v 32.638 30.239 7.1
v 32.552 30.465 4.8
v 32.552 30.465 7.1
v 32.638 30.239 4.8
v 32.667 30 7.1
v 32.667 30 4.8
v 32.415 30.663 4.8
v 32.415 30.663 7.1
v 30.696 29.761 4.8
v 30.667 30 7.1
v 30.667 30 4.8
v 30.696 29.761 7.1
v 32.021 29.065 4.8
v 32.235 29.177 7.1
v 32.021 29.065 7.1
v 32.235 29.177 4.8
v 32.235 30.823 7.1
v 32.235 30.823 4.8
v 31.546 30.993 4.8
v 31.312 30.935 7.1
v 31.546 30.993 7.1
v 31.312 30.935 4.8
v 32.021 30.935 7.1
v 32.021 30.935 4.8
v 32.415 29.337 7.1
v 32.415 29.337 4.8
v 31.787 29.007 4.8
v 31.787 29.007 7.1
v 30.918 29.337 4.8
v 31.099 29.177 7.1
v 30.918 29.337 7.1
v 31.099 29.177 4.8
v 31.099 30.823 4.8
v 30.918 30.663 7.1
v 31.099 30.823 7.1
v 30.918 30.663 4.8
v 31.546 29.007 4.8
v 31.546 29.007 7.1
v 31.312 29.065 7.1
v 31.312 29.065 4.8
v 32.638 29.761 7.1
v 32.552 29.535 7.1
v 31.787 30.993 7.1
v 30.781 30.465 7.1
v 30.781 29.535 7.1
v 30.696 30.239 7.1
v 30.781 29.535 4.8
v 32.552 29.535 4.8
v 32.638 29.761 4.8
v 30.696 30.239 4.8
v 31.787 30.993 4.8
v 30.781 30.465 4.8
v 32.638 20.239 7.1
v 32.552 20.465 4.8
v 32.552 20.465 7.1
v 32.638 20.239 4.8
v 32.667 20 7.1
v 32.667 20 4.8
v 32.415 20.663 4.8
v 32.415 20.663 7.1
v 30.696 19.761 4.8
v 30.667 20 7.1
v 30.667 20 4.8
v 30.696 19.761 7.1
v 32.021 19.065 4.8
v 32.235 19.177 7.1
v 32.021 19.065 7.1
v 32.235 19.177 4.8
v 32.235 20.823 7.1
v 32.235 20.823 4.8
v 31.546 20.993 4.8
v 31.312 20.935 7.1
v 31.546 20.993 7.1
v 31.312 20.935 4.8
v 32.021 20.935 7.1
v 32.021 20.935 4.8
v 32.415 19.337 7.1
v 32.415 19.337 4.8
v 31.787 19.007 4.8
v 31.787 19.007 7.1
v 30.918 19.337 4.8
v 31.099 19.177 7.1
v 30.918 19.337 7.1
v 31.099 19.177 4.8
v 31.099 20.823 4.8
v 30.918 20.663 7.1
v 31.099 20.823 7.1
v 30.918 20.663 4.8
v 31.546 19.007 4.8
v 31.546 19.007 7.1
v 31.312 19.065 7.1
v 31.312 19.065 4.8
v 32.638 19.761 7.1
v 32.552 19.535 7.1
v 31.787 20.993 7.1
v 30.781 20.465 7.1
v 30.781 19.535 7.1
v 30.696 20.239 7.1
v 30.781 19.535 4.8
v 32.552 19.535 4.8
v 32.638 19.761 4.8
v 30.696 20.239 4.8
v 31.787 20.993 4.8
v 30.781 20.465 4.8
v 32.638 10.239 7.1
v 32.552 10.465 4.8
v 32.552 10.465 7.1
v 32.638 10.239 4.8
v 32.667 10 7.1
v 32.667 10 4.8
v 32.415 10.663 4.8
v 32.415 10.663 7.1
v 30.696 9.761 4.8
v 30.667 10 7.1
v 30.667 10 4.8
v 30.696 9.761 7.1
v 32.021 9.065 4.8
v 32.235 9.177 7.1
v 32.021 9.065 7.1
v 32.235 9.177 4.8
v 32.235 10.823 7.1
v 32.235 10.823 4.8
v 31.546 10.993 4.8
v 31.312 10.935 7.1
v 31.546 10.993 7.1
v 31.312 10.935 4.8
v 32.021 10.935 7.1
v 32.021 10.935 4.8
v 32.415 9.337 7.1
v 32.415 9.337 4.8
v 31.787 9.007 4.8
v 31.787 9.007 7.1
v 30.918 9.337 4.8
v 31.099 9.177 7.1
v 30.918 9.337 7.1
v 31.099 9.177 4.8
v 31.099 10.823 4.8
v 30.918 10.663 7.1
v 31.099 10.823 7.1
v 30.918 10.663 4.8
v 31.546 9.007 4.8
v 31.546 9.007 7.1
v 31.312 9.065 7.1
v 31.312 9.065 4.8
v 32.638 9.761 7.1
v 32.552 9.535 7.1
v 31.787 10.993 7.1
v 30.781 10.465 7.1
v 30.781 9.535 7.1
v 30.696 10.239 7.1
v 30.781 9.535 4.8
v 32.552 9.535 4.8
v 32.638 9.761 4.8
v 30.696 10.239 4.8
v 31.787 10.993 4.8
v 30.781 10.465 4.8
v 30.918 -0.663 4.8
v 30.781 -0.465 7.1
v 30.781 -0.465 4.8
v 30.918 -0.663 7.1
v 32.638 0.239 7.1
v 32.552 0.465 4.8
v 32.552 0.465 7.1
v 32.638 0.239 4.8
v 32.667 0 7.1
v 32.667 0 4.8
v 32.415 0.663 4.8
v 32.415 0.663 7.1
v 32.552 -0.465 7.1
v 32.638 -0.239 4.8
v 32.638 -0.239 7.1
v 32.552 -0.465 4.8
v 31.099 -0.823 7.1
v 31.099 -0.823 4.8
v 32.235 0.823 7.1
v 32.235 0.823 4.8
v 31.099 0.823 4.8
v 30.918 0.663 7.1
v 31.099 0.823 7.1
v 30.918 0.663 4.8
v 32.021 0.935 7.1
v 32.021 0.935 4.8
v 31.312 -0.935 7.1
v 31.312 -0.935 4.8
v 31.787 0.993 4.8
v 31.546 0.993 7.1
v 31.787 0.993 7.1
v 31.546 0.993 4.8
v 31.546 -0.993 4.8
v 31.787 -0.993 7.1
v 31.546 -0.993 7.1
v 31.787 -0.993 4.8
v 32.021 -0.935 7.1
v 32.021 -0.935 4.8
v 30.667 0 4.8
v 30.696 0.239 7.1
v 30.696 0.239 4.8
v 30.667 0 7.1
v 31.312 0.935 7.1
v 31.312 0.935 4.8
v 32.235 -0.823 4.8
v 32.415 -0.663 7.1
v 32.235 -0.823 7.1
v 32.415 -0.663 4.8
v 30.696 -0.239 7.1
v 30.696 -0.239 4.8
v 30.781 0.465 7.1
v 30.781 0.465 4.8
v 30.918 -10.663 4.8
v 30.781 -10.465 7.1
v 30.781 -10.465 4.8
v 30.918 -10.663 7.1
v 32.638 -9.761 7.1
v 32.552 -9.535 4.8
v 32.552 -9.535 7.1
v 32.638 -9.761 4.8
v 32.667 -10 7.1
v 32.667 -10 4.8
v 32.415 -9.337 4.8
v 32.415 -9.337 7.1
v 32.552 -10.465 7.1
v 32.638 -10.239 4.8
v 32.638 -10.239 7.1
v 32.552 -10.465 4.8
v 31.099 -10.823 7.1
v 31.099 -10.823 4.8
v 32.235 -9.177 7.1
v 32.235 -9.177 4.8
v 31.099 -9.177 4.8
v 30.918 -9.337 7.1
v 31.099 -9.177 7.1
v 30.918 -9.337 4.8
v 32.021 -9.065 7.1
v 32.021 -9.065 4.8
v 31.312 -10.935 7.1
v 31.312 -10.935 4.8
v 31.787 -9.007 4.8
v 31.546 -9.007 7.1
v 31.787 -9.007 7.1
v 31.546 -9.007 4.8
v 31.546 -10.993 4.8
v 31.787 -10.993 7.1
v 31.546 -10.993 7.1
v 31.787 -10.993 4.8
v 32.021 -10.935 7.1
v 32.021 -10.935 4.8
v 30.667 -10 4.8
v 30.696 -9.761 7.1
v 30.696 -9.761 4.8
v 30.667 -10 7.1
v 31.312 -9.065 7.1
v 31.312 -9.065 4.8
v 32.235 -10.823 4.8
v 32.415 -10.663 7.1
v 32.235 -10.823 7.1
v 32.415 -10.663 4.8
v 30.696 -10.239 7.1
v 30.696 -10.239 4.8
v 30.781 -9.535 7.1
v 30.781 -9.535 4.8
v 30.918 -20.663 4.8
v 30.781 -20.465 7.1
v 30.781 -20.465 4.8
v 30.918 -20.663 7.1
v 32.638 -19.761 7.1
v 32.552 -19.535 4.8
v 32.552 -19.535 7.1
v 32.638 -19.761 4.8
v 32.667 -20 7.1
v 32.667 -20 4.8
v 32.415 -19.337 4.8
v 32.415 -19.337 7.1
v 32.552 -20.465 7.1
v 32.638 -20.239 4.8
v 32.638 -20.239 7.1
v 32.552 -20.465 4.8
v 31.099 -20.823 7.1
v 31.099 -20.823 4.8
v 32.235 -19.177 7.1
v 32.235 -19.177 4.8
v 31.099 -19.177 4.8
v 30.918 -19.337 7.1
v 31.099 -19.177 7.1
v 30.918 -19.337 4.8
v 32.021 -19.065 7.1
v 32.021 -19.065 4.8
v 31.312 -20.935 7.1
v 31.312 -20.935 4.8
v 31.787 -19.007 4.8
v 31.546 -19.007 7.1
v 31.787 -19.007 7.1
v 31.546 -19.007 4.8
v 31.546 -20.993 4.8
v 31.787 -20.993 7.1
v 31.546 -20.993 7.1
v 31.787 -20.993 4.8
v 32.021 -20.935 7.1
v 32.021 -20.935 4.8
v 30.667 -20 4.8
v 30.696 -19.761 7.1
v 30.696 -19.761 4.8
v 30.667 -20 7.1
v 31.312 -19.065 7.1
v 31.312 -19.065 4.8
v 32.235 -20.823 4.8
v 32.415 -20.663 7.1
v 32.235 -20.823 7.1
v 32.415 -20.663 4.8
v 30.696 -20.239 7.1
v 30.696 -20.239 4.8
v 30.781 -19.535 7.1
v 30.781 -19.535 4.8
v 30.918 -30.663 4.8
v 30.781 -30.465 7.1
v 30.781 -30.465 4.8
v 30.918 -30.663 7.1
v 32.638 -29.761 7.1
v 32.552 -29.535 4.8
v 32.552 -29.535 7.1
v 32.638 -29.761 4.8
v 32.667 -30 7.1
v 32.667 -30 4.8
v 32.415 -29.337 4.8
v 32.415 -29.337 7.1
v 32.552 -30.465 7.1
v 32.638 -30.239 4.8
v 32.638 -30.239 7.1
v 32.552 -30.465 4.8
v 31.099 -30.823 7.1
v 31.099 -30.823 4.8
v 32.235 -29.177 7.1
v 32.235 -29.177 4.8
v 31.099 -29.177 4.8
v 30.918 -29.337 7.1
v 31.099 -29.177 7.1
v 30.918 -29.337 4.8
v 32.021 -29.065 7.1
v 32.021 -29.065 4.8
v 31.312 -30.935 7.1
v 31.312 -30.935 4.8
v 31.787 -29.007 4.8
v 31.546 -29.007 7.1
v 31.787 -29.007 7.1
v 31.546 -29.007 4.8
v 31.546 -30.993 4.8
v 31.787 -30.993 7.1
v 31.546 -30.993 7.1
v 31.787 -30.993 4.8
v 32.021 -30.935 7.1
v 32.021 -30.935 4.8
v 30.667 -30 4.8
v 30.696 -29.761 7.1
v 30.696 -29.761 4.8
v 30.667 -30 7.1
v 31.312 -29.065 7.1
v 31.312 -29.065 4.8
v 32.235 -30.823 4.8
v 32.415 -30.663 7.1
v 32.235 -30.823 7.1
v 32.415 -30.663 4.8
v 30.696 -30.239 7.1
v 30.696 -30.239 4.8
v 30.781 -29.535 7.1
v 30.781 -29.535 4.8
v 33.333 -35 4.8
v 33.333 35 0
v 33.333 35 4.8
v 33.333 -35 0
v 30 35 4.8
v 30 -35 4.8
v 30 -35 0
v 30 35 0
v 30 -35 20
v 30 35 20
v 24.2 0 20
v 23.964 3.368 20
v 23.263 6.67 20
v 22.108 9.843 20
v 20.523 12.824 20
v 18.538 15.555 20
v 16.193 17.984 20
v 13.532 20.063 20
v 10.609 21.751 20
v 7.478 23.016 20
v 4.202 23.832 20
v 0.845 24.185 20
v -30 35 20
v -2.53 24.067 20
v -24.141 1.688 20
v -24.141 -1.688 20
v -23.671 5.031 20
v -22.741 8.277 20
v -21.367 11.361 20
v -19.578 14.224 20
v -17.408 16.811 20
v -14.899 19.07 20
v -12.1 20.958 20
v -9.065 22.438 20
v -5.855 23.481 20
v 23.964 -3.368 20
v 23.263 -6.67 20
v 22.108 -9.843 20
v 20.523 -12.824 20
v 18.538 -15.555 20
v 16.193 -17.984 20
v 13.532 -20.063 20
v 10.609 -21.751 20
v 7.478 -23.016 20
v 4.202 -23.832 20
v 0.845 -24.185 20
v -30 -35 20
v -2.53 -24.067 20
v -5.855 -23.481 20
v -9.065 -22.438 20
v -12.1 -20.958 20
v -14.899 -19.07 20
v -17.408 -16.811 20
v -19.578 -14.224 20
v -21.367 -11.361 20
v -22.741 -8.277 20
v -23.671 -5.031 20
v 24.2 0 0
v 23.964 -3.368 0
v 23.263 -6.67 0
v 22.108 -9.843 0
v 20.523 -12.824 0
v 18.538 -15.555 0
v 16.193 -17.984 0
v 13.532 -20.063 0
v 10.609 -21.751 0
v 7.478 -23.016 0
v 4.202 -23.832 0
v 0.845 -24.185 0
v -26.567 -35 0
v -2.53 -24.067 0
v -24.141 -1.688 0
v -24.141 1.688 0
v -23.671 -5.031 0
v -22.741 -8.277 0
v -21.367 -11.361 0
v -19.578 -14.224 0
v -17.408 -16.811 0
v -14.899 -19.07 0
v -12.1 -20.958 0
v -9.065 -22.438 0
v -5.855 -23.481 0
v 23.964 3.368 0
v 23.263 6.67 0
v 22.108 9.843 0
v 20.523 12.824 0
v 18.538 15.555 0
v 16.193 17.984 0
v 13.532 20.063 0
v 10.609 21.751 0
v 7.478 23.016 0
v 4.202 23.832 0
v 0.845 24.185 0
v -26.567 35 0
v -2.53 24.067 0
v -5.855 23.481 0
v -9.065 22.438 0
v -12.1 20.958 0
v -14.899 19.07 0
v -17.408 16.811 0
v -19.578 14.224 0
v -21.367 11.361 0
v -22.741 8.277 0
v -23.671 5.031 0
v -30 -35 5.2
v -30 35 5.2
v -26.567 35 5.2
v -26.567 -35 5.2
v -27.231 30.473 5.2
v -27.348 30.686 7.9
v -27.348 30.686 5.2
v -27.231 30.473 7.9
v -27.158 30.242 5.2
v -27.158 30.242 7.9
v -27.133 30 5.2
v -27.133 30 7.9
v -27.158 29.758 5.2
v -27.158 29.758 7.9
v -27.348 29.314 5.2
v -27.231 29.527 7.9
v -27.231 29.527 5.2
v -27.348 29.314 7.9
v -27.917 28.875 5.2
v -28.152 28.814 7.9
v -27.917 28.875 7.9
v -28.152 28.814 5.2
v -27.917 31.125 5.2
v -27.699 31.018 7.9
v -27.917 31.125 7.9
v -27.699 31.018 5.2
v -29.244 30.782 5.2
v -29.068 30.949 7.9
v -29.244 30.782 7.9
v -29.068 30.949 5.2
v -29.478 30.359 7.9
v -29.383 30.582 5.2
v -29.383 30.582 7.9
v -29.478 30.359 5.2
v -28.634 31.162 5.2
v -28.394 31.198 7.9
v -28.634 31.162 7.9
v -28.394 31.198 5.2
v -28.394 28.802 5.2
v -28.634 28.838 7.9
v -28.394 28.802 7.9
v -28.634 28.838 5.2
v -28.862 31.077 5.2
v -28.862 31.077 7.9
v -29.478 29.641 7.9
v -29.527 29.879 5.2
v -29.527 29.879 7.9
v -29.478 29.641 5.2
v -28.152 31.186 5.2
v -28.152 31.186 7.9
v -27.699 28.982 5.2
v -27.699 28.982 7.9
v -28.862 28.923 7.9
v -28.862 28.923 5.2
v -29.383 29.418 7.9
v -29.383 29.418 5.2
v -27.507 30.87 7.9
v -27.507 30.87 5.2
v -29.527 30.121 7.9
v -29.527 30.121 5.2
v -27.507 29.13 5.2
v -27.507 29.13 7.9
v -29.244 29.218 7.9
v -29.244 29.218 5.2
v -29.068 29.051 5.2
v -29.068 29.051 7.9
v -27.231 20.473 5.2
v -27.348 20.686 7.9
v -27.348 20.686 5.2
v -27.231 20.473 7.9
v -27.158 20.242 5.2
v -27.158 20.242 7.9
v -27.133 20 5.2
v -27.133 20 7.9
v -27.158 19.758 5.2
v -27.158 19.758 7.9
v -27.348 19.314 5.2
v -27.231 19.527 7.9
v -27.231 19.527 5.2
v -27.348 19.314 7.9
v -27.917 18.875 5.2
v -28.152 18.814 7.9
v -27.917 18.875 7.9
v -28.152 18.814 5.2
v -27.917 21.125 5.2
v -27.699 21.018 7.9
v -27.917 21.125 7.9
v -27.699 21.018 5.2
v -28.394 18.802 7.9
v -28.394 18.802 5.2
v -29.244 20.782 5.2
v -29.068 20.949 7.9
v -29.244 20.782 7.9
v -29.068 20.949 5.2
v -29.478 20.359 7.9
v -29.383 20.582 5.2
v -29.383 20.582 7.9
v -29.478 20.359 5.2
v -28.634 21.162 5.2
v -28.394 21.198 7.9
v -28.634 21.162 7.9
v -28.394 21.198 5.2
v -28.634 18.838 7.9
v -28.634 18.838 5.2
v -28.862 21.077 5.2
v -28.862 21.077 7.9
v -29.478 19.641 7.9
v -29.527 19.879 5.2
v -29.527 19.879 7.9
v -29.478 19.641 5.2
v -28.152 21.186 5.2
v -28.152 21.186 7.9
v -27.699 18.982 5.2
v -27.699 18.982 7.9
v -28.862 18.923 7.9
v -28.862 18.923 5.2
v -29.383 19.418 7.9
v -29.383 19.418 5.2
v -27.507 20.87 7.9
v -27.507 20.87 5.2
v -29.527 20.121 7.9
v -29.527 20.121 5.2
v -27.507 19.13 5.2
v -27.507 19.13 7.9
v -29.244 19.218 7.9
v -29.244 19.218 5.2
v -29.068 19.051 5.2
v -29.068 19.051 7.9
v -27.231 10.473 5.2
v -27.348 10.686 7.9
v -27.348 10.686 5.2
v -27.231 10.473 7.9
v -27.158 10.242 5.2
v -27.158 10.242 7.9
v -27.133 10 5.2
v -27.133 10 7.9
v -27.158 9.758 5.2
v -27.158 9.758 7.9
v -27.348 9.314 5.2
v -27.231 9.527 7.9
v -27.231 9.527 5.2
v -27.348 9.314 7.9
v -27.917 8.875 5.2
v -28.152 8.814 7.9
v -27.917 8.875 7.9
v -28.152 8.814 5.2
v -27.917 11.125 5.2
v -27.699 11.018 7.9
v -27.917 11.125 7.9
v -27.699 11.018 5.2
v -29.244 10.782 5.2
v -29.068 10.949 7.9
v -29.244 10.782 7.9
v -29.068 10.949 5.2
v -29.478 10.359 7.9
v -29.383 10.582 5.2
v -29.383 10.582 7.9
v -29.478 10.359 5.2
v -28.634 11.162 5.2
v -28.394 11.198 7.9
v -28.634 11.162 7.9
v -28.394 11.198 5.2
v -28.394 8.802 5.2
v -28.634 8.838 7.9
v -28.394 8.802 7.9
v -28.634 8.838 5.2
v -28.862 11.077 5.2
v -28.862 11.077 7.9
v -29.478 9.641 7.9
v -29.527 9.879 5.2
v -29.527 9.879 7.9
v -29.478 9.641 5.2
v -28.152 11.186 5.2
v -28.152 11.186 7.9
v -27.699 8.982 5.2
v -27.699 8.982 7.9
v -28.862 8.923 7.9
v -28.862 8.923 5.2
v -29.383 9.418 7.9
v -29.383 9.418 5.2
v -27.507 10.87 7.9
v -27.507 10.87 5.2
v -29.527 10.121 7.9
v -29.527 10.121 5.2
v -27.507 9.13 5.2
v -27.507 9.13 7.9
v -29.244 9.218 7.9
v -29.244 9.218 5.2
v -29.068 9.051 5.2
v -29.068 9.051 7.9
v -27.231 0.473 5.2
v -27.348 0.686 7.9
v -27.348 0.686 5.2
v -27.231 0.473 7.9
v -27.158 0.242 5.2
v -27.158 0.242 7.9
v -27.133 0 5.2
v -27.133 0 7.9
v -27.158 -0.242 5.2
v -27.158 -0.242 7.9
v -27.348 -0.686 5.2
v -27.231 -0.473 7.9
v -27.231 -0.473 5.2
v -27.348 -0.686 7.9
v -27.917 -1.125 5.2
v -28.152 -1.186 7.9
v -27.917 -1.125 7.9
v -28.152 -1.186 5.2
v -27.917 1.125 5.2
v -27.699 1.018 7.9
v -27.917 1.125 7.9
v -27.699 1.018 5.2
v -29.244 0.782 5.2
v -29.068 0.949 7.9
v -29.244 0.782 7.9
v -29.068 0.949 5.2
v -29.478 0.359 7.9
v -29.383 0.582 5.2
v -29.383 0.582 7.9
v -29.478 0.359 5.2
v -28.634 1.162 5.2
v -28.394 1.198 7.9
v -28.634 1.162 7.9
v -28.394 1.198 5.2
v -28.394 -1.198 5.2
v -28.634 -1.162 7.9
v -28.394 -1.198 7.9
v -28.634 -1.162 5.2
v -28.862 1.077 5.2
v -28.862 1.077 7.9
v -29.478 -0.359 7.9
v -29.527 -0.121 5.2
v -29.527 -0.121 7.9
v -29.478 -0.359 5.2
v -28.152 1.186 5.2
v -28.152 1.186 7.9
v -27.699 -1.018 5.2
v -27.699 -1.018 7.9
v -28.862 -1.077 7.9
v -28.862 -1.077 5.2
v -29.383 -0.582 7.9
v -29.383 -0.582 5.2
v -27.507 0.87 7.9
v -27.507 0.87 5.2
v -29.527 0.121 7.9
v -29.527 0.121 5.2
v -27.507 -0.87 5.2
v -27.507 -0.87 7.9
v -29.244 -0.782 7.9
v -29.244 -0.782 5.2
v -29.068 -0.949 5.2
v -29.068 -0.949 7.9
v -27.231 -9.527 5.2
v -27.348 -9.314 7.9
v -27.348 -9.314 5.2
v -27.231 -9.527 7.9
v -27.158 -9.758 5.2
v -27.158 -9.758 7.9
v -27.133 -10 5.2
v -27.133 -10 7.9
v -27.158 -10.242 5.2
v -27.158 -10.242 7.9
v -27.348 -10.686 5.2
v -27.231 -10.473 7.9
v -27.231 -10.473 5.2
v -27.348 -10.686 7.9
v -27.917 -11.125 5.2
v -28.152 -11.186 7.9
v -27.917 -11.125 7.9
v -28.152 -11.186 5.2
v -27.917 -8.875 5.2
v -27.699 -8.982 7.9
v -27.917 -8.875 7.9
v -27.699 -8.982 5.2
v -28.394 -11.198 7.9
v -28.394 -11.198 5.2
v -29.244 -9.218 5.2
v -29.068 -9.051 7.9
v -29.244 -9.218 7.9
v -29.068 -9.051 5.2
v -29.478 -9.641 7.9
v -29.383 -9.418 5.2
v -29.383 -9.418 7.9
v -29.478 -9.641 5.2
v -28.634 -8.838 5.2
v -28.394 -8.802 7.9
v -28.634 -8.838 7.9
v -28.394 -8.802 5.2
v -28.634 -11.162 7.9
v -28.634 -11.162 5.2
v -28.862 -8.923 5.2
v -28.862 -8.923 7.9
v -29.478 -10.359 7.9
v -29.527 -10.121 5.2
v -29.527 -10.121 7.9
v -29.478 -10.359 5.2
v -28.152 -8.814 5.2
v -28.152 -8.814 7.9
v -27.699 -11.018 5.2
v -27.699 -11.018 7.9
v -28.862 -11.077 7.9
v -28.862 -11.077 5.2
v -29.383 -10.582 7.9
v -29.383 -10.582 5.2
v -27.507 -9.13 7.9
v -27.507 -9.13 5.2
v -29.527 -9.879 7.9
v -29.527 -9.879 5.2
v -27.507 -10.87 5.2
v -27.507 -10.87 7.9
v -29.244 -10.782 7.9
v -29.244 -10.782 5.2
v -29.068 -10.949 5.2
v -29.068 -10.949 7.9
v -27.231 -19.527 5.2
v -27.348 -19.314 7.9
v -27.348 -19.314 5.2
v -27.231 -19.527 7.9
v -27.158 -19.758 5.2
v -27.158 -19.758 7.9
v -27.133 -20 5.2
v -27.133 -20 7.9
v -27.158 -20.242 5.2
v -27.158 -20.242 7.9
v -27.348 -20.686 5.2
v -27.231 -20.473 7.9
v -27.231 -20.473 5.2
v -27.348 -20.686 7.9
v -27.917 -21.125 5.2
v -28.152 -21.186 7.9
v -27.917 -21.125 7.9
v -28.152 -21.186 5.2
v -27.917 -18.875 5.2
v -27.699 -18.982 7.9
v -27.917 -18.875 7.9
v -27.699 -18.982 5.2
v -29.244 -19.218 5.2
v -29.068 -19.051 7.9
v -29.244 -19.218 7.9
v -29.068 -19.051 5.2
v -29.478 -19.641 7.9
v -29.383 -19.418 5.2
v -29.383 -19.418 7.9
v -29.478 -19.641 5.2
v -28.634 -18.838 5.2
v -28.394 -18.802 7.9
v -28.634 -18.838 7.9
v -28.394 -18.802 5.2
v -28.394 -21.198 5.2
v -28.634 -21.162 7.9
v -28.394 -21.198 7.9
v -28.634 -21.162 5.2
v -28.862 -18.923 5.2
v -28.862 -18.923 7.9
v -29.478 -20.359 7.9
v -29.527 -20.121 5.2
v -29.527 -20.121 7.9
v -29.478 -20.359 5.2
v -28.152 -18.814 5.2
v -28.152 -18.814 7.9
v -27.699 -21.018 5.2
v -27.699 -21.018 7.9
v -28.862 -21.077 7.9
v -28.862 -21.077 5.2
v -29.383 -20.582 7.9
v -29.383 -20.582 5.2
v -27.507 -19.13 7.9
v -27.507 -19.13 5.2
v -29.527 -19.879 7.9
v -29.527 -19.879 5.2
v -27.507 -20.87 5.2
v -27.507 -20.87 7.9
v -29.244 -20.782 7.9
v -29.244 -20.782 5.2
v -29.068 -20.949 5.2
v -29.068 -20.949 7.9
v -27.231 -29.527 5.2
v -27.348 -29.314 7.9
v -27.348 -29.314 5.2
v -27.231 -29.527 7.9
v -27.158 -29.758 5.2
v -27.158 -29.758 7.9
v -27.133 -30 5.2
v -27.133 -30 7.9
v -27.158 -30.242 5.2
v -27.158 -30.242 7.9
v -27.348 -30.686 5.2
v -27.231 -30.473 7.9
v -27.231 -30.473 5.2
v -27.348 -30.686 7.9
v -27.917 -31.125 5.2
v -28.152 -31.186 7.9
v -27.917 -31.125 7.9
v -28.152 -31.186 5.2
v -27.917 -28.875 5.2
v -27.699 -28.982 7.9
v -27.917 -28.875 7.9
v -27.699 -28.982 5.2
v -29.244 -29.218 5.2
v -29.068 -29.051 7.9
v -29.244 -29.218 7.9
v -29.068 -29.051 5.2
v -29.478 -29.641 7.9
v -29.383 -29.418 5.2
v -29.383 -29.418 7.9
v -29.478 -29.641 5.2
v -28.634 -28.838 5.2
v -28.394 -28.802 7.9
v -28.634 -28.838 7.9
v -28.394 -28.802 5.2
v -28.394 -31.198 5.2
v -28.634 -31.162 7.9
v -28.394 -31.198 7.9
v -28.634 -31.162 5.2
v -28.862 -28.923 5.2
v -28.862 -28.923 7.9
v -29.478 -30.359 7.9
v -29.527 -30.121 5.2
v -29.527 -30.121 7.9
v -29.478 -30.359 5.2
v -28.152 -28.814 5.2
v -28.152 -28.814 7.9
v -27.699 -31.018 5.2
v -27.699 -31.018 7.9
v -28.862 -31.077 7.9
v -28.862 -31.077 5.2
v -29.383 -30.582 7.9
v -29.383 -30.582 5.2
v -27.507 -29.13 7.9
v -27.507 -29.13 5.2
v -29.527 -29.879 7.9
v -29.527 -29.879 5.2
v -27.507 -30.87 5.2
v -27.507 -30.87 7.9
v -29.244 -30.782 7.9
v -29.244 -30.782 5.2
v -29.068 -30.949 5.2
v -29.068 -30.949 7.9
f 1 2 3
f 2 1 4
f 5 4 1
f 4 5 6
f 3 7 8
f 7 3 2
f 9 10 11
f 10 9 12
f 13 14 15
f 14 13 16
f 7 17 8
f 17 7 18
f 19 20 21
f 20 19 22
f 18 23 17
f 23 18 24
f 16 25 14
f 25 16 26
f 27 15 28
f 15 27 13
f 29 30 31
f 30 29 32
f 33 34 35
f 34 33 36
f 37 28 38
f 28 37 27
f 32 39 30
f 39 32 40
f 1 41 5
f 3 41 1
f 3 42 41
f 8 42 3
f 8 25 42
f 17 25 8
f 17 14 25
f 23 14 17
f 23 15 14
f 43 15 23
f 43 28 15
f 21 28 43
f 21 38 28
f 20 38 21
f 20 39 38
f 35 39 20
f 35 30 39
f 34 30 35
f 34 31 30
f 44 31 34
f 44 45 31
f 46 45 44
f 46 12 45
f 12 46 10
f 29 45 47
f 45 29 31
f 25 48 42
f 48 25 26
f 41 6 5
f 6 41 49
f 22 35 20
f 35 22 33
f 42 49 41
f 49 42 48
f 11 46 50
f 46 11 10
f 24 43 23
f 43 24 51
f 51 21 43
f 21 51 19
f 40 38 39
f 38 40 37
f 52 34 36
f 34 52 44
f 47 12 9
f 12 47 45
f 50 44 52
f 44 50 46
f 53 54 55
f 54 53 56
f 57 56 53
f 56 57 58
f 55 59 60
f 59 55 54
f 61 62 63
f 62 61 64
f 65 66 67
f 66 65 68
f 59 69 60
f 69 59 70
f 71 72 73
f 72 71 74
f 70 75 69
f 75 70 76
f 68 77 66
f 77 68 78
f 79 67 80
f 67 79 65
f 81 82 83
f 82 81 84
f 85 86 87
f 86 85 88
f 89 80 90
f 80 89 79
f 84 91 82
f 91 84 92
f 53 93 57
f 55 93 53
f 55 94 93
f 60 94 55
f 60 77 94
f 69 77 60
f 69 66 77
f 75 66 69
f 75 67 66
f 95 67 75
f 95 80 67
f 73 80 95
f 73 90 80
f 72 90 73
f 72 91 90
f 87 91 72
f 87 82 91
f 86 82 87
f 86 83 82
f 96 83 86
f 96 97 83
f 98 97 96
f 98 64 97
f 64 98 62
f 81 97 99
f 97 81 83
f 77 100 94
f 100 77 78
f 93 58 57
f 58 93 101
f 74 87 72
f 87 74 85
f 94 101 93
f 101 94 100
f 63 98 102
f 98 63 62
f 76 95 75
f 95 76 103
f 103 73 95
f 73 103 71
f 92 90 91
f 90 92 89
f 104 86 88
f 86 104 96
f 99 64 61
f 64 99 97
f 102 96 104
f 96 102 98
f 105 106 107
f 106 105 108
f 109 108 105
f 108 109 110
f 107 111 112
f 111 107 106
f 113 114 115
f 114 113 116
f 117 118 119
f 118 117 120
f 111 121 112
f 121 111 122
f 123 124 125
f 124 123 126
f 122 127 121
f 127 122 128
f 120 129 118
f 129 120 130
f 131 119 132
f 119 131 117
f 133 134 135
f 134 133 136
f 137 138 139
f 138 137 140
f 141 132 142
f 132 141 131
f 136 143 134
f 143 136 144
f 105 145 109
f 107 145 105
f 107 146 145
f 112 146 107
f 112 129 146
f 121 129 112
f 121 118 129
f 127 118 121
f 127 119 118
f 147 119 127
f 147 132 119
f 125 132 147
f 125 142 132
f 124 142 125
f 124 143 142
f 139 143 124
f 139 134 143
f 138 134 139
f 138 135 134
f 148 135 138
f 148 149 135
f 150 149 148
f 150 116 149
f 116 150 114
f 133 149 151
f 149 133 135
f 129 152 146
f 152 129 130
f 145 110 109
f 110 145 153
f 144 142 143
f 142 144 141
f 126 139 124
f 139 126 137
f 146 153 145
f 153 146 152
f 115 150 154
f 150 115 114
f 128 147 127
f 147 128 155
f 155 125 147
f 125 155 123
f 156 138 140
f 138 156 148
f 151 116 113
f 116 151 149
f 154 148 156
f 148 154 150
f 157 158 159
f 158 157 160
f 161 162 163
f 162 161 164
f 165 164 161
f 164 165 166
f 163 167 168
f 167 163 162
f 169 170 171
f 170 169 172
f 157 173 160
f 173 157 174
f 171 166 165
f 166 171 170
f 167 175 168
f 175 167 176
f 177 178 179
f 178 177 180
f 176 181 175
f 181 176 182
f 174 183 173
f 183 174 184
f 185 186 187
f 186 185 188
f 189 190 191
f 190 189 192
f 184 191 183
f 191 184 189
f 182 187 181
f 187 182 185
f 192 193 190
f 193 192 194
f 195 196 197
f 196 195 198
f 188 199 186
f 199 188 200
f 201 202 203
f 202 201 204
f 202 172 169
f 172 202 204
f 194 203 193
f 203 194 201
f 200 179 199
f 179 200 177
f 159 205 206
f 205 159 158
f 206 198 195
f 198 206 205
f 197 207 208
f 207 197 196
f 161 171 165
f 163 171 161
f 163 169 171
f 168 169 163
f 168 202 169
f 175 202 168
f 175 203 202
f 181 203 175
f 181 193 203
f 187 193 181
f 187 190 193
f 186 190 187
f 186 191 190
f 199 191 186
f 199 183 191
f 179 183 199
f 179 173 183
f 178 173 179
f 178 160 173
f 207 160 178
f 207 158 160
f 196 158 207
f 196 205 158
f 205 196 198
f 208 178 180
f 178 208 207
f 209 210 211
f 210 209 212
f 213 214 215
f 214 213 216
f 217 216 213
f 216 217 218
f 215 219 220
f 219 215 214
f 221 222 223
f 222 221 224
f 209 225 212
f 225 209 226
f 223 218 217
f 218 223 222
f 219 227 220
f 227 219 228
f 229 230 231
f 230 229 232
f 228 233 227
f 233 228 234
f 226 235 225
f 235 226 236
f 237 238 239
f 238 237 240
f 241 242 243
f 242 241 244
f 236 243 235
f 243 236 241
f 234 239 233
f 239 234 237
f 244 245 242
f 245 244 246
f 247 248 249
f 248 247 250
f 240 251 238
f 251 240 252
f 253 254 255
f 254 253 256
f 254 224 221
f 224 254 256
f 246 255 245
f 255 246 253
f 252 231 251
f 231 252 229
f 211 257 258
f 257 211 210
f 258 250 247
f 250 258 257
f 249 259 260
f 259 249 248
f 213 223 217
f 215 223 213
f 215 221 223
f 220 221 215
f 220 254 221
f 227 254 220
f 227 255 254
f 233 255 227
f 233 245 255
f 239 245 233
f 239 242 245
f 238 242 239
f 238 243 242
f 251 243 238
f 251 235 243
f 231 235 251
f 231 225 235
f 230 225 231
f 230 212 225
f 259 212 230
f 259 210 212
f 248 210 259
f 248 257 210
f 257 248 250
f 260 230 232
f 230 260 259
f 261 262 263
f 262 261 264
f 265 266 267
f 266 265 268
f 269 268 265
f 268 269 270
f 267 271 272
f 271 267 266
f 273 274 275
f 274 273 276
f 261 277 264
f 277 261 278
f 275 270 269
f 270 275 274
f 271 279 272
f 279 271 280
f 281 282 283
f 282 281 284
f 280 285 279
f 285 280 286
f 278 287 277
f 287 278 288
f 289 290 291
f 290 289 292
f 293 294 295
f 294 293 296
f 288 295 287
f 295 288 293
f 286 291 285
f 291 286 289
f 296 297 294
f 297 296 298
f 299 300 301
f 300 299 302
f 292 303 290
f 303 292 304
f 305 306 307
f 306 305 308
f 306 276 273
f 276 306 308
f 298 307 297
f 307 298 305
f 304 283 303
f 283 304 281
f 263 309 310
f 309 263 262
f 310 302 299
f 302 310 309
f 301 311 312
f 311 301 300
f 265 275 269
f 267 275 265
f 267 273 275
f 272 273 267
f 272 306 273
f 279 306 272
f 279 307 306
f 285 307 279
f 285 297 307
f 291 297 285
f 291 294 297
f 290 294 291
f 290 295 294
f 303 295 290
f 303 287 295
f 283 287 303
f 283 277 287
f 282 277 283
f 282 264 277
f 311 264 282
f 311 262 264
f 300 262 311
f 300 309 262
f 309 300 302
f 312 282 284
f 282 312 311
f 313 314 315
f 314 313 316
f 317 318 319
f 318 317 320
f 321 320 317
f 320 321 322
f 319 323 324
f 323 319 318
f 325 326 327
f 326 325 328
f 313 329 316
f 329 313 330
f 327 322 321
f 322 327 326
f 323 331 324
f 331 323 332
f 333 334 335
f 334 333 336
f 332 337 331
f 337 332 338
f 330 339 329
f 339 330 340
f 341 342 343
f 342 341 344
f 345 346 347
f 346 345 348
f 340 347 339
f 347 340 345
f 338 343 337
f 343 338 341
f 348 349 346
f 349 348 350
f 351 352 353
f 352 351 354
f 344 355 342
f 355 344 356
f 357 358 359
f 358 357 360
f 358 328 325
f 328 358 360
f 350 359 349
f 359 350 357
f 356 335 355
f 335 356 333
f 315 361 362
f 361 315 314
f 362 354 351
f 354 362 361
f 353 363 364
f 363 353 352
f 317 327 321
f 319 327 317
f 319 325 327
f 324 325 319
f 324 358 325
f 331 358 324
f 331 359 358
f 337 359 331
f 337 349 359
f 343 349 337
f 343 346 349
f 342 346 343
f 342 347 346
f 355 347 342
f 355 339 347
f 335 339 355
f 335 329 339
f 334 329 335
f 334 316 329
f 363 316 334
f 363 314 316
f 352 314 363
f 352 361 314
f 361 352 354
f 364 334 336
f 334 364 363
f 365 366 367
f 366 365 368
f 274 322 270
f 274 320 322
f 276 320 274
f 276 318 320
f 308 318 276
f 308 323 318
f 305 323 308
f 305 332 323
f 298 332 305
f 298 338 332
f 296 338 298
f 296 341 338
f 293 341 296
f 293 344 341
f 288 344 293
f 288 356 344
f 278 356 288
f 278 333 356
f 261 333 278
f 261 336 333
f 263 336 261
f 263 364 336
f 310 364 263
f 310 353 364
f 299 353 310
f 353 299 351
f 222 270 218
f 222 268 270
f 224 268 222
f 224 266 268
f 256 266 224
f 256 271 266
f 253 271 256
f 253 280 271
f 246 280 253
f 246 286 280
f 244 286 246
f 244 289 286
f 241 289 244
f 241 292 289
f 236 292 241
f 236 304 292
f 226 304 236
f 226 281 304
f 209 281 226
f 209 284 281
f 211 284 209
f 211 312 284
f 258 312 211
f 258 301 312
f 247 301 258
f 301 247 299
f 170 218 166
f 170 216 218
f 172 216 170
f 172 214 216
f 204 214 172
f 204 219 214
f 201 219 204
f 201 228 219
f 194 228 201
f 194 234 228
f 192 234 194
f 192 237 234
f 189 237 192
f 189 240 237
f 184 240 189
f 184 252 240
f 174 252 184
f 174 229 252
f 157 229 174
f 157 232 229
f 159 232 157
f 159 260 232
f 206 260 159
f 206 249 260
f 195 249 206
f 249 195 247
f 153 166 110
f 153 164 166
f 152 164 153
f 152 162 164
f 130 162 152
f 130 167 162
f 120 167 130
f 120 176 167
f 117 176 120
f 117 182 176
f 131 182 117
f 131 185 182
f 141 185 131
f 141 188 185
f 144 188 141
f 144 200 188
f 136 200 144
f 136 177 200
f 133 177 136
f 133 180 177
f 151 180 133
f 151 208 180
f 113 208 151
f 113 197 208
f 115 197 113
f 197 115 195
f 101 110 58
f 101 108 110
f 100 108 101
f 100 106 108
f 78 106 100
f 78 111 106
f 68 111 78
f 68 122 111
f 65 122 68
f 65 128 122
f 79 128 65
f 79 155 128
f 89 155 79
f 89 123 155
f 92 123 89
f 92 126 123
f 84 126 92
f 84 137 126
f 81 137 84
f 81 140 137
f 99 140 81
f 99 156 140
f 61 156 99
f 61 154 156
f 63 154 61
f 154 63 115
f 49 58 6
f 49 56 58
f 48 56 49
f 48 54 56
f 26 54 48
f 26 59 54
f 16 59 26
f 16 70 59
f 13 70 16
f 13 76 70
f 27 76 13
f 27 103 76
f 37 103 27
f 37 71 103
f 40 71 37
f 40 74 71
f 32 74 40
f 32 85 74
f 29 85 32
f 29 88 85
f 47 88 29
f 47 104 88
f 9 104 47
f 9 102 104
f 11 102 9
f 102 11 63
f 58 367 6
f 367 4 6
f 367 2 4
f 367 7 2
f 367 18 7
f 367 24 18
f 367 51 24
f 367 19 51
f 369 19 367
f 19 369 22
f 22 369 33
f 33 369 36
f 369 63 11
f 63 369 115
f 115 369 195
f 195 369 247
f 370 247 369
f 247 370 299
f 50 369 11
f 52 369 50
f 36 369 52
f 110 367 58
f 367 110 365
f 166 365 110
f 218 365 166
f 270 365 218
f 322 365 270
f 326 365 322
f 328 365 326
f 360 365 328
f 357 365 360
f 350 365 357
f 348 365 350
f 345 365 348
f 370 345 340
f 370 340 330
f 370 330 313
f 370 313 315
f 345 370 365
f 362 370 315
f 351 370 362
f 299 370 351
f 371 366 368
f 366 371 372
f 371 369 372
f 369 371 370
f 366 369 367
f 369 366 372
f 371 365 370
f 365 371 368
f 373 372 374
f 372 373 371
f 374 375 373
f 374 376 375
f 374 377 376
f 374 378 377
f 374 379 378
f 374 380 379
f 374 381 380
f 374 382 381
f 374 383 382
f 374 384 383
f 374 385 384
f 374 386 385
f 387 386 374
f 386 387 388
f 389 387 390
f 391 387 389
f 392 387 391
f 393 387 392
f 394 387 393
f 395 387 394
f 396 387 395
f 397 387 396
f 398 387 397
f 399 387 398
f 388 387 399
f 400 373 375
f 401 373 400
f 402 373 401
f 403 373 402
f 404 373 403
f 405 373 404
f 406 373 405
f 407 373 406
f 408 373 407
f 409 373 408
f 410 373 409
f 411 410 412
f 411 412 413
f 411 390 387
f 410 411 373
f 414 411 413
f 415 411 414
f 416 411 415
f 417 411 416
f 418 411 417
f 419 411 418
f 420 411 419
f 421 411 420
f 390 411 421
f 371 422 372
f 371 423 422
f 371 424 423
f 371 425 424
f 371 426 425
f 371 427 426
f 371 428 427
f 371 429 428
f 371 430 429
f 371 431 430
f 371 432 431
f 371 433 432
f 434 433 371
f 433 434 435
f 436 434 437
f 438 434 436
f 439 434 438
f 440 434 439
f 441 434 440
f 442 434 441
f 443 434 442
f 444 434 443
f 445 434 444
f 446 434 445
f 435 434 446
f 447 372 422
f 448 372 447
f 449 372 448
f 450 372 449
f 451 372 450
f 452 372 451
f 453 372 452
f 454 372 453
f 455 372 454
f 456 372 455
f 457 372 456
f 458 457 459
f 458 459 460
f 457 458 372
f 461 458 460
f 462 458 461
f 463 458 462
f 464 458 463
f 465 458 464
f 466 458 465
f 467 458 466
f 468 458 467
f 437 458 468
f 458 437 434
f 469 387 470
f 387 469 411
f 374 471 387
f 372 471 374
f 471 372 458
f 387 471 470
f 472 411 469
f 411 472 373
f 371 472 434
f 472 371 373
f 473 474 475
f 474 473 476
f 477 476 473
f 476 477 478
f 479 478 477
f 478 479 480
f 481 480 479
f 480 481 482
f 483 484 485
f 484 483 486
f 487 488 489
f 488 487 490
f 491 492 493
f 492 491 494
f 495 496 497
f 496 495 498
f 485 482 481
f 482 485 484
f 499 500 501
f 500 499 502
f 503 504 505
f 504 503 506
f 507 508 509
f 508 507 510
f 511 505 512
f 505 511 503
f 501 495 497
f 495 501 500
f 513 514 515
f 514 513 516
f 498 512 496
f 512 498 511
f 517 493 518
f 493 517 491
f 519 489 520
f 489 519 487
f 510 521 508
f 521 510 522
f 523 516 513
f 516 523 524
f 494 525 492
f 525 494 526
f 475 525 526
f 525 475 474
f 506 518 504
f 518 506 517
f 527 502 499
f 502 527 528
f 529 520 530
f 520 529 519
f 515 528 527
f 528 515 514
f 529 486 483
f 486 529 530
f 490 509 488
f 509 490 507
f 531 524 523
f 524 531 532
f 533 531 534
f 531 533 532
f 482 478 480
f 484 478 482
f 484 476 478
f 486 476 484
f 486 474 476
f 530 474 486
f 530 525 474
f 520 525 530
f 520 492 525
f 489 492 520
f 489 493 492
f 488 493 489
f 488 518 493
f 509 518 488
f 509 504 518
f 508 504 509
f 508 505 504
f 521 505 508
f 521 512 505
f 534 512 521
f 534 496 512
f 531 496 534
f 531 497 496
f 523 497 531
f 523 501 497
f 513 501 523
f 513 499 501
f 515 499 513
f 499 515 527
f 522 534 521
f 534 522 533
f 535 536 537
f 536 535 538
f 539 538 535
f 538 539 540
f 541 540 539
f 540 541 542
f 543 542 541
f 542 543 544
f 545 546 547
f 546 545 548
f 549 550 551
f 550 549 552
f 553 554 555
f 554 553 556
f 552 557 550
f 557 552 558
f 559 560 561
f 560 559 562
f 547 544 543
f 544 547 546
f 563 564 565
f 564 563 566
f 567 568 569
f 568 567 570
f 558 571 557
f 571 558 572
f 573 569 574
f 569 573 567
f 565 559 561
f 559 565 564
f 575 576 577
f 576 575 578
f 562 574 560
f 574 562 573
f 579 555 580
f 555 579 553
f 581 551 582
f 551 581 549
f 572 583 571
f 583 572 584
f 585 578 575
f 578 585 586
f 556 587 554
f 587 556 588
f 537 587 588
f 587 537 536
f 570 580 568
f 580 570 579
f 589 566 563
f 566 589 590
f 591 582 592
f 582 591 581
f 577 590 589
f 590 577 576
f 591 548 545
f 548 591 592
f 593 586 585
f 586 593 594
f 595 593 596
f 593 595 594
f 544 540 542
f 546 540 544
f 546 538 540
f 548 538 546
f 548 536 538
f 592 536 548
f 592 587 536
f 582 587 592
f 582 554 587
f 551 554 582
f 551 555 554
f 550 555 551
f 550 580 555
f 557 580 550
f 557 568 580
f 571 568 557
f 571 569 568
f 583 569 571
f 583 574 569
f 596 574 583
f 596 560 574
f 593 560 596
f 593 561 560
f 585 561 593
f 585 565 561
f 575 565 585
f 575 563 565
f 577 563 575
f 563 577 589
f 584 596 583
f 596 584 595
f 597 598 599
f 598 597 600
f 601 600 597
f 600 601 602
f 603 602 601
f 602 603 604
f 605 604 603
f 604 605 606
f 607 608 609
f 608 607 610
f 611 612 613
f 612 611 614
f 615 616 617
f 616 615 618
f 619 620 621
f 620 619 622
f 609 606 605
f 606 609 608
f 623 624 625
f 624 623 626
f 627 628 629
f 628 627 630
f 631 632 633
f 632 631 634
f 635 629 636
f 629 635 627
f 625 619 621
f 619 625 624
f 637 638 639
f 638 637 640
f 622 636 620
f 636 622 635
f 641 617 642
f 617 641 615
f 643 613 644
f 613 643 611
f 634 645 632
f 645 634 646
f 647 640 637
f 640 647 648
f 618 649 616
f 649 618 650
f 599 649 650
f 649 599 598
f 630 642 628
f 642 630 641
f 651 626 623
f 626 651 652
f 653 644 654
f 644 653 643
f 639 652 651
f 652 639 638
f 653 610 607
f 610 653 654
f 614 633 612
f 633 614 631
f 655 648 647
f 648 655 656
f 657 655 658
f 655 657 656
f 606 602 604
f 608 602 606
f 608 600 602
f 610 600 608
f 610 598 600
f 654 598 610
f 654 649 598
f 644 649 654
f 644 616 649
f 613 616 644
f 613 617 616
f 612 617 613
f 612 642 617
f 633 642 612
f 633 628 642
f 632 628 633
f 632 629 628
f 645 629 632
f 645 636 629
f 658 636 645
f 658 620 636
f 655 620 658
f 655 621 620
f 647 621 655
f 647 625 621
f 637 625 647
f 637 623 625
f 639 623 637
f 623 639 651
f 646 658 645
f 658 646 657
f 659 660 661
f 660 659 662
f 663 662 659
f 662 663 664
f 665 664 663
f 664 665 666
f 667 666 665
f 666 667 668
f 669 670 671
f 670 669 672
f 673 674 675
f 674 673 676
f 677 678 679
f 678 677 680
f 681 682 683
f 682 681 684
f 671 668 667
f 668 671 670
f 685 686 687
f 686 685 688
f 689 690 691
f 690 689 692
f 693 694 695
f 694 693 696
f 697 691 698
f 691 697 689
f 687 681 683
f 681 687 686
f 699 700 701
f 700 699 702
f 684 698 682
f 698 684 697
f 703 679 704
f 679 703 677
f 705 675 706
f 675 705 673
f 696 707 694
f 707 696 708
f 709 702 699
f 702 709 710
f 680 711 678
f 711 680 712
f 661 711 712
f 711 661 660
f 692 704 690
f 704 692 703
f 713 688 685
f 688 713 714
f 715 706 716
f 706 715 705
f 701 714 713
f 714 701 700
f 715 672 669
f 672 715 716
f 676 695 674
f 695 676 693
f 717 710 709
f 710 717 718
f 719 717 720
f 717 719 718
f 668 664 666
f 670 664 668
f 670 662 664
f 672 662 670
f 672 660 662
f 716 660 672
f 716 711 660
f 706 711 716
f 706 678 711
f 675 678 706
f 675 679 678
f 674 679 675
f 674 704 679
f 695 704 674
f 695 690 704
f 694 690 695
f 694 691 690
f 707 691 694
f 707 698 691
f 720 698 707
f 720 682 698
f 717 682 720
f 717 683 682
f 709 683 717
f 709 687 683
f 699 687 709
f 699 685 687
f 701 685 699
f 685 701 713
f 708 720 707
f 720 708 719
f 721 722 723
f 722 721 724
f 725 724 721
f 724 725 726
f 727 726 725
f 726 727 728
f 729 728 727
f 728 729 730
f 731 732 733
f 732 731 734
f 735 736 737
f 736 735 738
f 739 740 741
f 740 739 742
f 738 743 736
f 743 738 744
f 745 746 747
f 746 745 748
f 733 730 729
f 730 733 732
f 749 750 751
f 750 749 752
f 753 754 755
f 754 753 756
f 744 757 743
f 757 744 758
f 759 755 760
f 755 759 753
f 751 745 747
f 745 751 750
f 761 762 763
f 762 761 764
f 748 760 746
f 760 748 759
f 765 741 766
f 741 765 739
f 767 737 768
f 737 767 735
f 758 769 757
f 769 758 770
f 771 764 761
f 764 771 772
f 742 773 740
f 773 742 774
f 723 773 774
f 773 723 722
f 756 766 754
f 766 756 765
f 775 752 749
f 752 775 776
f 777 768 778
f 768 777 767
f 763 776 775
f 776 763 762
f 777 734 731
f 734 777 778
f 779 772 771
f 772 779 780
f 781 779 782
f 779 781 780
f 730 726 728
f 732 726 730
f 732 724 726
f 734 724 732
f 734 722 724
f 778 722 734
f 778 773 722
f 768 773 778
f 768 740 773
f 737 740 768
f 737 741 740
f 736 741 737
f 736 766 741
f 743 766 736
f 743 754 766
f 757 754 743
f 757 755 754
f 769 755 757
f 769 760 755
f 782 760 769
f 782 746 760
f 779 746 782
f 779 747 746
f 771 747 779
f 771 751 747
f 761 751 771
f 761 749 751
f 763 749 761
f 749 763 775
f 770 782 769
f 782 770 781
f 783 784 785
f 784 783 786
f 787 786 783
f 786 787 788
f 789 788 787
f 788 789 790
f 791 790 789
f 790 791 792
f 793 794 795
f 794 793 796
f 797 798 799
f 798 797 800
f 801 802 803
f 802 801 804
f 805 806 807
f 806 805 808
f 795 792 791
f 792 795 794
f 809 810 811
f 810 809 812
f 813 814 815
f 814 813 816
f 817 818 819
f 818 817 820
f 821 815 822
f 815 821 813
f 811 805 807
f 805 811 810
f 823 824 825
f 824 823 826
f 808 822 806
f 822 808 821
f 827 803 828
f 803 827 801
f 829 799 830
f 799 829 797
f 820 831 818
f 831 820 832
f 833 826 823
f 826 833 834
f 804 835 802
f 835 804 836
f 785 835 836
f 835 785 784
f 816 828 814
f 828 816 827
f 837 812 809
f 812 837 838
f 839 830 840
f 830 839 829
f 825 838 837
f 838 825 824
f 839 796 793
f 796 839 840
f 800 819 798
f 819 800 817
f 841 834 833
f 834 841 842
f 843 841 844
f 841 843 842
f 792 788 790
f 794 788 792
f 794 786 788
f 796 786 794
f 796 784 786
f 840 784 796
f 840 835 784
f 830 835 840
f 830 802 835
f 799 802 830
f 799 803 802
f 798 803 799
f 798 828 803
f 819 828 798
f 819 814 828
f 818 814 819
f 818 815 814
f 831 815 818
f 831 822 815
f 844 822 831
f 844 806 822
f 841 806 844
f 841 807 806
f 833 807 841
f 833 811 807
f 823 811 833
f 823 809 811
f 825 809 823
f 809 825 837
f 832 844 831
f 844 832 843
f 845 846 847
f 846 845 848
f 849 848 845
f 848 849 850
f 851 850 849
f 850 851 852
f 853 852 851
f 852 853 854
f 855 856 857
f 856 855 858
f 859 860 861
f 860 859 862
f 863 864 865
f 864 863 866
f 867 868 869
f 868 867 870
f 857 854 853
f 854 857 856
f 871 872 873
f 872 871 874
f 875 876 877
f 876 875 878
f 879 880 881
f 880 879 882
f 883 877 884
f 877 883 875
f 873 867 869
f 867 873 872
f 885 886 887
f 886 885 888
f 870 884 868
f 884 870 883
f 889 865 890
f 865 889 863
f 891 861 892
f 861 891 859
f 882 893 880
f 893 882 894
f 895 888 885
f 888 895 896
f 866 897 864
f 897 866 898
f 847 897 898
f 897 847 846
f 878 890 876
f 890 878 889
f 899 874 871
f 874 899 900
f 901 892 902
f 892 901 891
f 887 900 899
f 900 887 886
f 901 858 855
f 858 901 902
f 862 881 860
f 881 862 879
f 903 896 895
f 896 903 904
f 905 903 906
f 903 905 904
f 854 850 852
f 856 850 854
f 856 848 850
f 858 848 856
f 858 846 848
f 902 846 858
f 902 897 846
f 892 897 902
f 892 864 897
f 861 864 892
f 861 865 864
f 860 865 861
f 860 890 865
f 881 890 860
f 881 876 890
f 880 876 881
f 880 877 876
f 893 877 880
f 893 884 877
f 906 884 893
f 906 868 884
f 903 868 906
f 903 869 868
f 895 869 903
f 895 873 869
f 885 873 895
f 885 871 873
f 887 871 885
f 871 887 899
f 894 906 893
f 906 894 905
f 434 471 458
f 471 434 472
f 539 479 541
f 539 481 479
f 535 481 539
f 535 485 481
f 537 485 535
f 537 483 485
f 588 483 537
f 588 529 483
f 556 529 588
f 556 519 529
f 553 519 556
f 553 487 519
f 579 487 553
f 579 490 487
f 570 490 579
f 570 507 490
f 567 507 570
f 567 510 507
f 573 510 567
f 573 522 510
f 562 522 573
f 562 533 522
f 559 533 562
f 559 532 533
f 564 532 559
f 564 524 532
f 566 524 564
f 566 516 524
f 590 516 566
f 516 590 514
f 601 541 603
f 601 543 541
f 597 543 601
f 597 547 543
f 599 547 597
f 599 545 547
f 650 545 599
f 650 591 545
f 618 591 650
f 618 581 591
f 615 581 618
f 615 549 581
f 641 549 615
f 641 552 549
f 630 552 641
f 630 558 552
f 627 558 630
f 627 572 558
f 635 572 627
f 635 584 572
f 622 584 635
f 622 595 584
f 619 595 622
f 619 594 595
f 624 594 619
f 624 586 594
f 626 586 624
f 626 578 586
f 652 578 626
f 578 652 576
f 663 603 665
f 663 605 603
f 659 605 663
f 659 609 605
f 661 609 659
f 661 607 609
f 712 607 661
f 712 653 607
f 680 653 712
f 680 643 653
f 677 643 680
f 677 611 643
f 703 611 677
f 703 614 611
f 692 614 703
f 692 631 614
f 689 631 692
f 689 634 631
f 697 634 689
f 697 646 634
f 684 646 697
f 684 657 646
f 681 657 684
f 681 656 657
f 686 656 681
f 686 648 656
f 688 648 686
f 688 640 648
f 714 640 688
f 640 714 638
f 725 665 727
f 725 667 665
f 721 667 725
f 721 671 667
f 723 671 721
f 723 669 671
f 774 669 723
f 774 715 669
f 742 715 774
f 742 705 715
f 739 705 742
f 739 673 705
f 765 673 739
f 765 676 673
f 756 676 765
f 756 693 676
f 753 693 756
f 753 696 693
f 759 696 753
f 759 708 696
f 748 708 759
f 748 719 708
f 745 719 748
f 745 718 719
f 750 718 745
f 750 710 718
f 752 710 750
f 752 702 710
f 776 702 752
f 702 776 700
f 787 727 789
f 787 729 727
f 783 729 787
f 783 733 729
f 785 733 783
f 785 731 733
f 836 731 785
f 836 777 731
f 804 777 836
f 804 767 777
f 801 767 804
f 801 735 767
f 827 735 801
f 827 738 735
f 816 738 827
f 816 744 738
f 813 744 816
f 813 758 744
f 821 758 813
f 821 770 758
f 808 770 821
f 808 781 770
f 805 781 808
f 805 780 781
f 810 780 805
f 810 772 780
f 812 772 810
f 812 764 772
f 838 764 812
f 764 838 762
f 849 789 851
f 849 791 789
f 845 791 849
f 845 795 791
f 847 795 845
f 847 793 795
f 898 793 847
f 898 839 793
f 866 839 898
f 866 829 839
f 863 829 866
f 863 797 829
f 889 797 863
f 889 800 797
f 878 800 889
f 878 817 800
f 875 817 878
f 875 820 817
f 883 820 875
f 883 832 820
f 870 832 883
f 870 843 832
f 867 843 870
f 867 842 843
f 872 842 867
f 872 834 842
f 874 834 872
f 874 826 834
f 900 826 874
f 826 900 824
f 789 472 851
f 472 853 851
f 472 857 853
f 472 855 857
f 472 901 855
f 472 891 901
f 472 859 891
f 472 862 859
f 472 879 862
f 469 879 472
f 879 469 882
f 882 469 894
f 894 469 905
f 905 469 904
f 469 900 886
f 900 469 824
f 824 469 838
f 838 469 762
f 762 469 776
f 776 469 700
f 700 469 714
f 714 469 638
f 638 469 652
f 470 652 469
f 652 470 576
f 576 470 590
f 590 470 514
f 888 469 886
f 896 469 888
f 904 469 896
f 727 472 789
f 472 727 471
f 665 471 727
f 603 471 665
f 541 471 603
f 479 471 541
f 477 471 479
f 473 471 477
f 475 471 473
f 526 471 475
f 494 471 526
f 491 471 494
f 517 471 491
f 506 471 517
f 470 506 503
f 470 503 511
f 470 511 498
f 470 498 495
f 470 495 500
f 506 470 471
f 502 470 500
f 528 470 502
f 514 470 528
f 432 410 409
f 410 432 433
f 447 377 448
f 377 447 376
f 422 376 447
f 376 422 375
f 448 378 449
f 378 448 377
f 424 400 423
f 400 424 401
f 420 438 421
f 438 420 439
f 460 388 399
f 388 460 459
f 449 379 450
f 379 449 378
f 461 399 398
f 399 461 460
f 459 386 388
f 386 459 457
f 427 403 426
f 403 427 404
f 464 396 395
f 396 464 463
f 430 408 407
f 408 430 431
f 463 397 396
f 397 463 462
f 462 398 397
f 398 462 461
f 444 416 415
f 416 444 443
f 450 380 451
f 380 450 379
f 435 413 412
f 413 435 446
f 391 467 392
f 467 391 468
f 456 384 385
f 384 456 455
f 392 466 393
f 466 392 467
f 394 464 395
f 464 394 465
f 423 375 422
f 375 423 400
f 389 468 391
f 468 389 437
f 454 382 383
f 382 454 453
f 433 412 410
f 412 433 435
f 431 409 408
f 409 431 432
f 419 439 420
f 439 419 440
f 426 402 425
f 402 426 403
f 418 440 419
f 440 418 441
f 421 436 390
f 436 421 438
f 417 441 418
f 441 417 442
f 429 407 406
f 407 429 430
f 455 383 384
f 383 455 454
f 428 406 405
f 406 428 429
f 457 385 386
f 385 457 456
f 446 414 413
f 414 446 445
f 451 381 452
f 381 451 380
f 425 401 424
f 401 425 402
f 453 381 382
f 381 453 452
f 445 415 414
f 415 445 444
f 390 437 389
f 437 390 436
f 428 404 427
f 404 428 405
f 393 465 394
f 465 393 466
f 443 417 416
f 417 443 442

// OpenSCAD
// file: ../base.scad
// The x-axis has the connection to the other units
// There is one connection peg per x
// Minimum unit is x=1, y=1, z=1
// If you have x=1, then the x-axis will be extended 
// with 1/3 for the connectors 
// the female version will can still be used and therefore
// counted within the unit

/* [Setup Parameters] */
$fa = 8;
$fs = 0.25;


module base(x,y,z) {
    u = 10;
    t = u;

    width = u*x;
    depth = u*y;
    height = t*z;

    margin = 0.2;

    male_connection_d = 2;
    female_connection_d = male_connection_d+margin*2;
    connector_width = u/3;
    connector_height = t/2;

    module connector(width, height, cylinder_height, cylinder_d) {
        translate([0, 0, 0])
        union() {
            translate([0, 0, height/2])
            cube([width, depth, height], center=true);
            for (i = [1:1:y]) {
                translate([0, depth/2+u/2-(u)*i, height-0.1])
                cylinder(h=cylinder_height+0.1, d=cylinder_d);
            }
        }
    }

    module male_connector() {
        width = connector_width;
        height = connector_height-margin;
        cylinder_height = connector_height/2-margin;
        cylinder_d = male_connection_d;

        connector(width, height, cylinder_height, cylinder_d);
    }

    module inverted_female_connecor() {
        width = connector_width+margin;
        height = connector_height+margin;
        cylinder_height = connector_height/2+margin;
        cylinder_d = female_connection_d;

        connector(width, height, cylinder_height, cylinder_d);
    }

    difference() {
        union() {
            translate([0, 0, height/2])
            cube([width, depth, height], center=true);
            translate([width/2+connector_width/2, 0, 0])
            male_connector();
        }
        union() {
            translate([-width/2+connector_width/2, 0, 0])
            inverted_female_connecor();
        }
    }
}


//base(2,7,2);

module connector(y) {
    u = 10;
}
// main file
include <../base.scad>


xunits = 6;
yunits = 7;
zunits = 2;

difference() {
    base(xunits,yunits,zunits);

    cylinder(h=20, d=48.4);
}
